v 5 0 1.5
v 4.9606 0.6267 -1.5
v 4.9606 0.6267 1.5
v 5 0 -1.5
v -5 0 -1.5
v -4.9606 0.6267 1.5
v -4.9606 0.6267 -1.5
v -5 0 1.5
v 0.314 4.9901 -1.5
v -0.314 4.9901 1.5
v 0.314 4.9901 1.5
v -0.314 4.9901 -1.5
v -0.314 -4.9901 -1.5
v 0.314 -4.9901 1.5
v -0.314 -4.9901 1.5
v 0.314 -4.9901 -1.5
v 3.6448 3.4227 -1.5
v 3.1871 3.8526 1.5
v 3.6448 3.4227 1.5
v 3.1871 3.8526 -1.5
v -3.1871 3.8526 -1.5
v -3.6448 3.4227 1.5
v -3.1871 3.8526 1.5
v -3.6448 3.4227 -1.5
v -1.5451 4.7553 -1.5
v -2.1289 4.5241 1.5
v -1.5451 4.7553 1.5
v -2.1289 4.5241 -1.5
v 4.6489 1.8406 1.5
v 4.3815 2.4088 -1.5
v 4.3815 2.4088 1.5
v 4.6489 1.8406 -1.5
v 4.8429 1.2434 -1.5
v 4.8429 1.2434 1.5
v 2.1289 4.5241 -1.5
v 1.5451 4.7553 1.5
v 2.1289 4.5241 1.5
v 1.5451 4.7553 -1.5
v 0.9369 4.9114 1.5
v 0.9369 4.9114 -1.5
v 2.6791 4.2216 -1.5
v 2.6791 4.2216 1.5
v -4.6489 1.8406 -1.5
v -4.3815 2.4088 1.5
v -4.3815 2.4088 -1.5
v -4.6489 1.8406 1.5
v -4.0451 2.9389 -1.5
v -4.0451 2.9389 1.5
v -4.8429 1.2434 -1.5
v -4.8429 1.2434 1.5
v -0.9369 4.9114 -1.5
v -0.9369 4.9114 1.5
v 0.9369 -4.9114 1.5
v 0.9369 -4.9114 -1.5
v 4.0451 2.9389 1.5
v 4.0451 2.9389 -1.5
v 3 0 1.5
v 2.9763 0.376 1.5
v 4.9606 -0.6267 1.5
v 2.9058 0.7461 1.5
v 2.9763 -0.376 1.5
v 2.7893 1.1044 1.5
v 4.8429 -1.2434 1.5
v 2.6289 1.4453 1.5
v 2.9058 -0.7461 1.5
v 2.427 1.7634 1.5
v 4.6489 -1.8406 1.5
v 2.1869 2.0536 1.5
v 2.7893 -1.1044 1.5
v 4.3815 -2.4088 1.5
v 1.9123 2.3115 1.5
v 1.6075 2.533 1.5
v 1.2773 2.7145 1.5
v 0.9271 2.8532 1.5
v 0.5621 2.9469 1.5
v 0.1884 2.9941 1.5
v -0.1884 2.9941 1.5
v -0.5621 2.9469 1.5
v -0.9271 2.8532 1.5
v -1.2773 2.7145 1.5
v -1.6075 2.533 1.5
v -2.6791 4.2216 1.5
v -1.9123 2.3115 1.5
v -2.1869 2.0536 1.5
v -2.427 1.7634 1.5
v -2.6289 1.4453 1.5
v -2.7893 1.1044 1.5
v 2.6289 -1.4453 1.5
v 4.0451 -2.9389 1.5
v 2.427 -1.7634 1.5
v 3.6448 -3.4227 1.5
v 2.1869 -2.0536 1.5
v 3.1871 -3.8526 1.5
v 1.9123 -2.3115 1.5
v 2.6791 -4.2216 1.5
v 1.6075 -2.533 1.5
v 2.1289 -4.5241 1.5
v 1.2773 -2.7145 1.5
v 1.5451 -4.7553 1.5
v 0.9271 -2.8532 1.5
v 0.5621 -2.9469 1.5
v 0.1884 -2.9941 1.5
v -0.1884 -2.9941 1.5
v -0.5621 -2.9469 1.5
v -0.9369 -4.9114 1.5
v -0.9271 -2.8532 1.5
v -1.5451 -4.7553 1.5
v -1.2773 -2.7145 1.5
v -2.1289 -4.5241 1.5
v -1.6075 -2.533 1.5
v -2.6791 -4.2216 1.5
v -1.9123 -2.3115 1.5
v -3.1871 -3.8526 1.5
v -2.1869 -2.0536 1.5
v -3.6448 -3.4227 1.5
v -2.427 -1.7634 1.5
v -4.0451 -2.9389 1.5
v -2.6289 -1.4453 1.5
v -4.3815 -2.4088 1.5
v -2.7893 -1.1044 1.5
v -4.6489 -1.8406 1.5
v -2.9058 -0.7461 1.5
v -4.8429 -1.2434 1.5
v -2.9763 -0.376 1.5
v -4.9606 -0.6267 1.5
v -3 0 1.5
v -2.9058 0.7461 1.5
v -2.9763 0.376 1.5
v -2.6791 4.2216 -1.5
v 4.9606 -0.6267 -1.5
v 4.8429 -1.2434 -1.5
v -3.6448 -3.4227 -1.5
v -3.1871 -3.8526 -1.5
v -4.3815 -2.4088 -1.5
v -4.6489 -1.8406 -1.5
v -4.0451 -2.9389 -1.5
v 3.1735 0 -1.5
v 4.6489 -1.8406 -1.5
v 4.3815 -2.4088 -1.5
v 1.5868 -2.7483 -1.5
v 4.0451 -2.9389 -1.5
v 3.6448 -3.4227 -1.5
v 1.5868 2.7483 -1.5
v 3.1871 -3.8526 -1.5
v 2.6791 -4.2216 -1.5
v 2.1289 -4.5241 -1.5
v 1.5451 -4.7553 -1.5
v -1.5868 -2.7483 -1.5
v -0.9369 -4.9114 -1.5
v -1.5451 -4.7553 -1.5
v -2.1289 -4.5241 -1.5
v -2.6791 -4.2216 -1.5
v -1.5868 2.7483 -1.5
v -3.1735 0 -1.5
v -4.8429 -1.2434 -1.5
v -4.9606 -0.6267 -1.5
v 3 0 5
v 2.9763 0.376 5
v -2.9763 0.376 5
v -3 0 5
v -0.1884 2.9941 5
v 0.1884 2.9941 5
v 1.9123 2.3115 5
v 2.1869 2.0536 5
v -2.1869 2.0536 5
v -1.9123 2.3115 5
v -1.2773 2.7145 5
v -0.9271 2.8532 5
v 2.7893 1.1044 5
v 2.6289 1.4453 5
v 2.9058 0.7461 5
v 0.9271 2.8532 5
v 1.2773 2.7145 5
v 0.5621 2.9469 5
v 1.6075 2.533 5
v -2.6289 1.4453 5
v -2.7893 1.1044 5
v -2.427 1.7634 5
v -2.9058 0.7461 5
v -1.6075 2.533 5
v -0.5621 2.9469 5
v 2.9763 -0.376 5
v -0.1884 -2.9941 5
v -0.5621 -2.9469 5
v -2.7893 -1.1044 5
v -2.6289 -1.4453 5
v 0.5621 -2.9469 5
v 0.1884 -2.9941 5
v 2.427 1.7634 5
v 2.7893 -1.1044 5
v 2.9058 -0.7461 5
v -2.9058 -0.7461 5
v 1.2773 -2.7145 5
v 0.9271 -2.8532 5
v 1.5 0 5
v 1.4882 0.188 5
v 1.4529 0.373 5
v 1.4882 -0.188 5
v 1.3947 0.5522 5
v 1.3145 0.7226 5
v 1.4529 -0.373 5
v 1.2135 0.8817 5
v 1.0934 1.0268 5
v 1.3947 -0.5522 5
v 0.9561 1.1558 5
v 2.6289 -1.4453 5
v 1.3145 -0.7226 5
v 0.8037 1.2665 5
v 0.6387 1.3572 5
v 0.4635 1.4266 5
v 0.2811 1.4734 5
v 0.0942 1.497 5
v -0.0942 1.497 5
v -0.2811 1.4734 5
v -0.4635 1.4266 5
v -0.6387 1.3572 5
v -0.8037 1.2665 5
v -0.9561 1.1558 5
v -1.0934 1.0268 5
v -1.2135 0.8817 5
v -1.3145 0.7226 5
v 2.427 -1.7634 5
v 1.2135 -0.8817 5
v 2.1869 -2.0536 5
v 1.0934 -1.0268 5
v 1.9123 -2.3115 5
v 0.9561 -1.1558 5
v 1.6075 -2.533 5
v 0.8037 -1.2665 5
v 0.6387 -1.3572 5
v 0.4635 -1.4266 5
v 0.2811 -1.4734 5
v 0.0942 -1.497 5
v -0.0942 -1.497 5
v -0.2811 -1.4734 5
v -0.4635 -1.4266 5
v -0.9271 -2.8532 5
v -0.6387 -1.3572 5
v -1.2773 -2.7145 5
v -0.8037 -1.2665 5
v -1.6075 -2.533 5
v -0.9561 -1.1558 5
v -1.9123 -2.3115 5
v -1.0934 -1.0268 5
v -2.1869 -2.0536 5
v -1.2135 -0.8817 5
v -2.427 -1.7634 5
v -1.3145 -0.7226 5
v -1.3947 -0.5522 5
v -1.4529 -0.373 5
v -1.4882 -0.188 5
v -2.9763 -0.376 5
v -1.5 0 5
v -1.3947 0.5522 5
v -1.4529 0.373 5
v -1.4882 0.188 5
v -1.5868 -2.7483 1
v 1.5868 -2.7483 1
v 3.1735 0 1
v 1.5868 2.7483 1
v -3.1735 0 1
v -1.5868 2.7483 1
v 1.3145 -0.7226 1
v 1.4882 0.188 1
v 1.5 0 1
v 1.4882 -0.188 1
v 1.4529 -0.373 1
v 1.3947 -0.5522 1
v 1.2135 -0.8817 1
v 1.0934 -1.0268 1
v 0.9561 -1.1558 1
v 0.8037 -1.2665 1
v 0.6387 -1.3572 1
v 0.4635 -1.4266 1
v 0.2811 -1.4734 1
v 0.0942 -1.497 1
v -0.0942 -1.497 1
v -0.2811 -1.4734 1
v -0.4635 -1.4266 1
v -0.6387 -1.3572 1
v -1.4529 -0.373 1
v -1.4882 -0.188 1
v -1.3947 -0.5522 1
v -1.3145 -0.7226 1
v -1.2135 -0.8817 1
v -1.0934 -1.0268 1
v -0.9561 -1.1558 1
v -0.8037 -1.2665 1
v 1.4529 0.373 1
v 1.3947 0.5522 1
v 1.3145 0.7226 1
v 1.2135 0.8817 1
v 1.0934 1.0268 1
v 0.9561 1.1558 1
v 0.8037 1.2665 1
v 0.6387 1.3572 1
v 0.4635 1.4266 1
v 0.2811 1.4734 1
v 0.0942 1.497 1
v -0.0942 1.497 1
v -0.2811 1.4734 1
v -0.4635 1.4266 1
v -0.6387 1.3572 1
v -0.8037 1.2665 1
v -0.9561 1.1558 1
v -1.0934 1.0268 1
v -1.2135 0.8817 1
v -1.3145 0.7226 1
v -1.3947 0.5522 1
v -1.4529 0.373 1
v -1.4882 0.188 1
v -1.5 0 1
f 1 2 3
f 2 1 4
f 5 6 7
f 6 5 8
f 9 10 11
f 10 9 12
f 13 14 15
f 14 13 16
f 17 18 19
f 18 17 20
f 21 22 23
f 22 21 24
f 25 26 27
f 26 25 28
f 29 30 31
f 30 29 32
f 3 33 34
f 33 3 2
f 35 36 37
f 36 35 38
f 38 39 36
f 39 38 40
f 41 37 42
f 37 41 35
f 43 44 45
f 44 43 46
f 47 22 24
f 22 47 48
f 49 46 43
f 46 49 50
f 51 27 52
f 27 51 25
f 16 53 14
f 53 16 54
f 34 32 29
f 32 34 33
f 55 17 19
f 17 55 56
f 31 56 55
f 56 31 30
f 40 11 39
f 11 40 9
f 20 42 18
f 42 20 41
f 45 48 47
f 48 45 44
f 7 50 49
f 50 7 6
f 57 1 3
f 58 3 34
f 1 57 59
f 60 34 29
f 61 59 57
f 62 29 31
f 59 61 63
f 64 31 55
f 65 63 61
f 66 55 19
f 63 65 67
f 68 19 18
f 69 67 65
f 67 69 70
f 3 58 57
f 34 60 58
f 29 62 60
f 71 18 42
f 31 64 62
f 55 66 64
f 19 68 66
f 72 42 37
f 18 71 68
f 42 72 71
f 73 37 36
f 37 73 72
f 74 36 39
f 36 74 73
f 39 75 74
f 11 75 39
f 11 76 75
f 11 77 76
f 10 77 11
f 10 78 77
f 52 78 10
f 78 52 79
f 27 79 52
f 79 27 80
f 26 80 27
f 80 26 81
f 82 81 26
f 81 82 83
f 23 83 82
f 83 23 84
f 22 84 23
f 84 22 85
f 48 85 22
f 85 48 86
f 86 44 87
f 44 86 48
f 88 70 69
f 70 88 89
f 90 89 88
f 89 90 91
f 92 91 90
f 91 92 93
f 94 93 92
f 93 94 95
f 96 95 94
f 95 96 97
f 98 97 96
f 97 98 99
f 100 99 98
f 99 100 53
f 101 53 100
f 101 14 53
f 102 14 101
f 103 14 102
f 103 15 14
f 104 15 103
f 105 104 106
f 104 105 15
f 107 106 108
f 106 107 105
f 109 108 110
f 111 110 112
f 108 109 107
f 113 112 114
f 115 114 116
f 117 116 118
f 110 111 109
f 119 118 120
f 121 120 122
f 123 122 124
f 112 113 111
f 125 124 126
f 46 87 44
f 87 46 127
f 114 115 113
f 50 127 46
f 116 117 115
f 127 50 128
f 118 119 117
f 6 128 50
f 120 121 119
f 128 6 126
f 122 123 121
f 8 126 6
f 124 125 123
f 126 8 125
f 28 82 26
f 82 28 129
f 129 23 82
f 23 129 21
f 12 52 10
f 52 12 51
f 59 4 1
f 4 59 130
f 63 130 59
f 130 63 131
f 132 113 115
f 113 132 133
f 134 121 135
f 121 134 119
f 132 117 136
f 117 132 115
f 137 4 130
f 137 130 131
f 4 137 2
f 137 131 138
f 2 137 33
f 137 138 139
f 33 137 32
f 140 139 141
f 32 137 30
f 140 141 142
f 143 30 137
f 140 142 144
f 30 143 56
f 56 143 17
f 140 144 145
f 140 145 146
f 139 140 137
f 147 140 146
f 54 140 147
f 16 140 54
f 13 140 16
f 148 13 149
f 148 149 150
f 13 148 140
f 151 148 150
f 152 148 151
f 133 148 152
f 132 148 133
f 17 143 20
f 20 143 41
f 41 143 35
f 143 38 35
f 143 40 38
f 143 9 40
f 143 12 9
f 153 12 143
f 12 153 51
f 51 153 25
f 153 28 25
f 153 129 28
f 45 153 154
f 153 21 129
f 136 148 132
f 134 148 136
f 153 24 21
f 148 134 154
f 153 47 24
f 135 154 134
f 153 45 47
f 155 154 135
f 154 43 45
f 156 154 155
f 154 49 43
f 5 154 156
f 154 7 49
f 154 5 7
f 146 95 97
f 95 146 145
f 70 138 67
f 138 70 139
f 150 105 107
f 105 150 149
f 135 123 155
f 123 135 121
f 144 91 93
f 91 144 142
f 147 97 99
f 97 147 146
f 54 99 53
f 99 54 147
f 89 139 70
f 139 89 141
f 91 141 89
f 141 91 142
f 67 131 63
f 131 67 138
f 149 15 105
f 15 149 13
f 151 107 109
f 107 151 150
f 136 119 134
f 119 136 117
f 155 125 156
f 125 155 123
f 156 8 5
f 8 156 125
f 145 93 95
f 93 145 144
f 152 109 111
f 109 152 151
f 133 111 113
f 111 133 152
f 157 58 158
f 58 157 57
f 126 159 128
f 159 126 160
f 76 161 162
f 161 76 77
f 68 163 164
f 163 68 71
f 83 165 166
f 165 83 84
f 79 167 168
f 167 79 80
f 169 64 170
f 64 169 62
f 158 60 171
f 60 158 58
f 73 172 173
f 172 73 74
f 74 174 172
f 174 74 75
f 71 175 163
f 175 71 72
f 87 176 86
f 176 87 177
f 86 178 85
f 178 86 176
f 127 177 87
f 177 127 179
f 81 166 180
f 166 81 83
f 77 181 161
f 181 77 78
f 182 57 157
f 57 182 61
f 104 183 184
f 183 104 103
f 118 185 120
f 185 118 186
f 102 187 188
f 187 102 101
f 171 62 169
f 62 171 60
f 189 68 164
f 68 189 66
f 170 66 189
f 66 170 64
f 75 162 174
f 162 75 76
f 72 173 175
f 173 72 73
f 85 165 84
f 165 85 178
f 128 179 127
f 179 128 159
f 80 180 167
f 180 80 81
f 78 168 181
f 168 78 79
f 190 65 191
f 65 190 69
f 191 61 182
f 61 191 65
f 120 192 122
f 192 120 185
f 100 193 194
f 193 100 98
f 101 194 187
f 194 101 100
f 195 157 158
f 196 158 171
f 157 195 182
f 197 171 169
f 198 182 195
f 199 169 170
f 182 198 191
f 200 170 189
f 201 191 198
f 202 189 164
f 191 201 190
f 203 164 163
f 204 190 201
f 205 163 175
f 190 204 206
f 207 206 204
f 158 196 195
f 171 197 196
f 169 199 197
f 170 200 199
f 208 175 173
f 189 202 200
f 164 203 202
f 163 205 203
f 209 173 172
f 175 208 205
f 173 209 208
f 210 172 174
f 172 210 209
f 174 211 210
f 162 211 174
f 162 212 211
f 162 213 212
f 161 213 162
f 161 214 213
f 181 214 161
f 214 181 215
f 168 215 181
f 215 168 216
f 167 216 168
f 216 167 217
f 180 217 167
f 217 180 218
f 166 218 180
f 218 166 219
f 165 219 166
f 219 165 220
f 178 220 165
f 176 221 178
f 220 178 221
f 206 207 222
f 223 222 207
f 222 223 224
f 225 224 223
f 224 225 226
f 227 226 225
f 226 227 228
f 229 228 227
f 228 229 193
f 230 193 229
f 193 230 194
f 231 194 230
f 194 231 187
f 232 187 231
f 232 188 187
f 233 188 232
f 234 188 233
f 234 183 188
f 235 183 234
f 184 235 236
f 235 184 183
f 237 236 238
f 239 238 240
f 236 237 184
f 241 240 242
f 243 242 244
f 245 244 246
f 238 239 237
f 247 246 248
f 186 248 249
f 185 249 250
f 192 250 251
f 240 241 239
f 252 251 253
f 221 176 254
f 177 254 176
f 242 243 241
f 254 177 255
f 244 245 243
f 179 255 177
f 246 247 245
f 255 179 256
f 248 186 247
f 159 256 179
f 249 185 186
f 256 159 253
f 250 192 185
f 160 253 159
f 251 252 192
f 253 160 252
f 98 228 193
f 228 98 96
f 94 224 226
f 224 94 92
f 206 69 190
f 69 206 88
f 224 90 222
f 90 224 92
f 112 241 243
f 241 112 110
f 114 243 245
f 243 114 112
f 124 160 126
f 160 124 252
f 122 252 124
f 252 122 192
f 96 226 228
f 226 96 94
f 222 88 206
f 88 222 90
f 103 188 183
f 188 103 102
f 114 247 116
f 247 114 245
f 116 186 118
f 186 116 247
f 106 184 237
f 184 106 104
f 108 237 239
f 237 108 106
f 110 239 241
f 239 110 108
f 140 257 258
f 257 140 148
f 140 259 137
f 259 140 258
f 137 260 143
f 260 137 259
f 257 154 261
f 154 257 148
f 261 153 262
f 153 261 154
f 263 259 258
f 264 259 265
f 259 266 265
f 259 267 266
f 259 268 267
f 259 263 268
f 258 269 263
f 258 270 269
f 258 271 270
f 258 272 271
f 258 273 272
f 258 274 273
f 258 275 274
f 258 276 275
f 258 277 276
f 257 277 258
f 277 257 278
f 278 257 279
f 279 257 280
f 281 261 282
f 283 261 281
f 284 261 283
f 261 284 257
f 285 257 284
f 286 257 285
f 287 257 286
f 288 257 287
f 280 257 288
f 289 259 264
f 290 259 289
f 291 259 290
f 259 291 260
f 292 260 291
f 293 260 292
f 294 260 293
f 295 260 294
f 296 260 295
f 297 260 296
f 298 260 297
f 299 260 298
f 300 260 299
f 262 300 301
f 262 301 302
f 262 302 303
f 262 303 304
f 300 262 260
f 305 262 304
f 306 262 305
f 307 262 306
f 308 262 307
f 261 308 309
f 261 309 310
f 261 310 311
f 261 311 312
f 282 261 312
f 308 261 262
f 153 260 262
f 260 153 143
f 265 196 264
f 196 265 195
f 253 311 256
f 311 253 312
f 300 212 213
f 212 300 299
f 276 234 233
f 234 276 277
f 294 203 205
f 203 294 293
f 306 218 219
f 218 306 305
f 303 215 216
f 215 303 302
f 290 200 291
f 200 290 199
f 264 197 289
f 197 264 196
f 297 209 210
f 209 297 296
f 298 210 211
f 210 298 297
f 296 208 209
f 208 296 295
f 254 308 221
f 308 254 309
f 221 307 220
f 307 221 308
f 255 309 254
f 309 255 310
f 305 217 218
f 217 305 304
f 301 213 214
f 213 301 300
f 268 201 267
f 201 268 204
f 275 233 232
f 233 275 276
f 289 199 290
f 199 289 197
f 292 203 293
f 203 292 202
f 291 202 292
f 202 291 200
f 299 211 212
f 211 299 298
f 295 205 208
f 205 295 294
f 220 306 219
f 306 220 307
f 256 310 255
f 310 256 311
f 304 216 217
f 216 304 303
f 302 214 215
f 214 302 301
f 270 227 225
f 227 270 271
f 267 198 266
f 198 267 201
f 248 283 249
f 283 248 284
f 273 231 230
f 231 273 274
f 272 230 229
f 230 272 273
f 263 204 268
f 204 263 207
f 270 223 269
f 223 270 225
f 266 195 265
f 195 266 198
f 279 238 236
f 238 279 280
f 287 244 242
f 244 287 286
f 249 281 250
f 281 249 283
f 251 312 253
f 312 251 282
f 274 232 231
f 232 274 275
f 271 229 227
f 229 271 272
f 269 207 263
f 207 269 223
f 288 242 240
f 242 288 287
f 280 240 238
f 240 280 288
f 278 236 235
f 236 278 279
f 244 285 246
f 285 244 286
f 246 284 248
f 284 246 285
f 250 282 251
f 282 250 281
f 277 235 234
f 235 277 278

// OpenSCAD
$fn = 50;


difference() {
	union() {
		translate(v = [0, 0, -1.5000000000]) {
			cylinder(h = 3, r = 5.0000000000);
		}
		translate(v = [0, 0, -1.5000000000]) {
			cylinder(h = 6.5000000000, r = 3.0000000000);
		}
	}
	union() {
		translate(v = [0, 0, -1.5000000000]) {
			rotate(a = [0, 0, 0]) {
				difference() {
					union() {
						linear_extrude(height = 2.5000000000) {
							polygon(points = [[3.1735000000, 0.0000000000], [1.5867500000, 2.7483316189], [-1.5867500000, 2.7483316189], [-3.1735000000, 0.0000000000], [-1.5867500000, -2.7483316189], [1.5867500000, -2.7483316189]]);
						}
					}
					union();
				}
			}
		}
		translate(v = [0, 0, -50.0000000000]) {
			cylinder(h = 100, r = 1.5000000000);
		}
	}
}
